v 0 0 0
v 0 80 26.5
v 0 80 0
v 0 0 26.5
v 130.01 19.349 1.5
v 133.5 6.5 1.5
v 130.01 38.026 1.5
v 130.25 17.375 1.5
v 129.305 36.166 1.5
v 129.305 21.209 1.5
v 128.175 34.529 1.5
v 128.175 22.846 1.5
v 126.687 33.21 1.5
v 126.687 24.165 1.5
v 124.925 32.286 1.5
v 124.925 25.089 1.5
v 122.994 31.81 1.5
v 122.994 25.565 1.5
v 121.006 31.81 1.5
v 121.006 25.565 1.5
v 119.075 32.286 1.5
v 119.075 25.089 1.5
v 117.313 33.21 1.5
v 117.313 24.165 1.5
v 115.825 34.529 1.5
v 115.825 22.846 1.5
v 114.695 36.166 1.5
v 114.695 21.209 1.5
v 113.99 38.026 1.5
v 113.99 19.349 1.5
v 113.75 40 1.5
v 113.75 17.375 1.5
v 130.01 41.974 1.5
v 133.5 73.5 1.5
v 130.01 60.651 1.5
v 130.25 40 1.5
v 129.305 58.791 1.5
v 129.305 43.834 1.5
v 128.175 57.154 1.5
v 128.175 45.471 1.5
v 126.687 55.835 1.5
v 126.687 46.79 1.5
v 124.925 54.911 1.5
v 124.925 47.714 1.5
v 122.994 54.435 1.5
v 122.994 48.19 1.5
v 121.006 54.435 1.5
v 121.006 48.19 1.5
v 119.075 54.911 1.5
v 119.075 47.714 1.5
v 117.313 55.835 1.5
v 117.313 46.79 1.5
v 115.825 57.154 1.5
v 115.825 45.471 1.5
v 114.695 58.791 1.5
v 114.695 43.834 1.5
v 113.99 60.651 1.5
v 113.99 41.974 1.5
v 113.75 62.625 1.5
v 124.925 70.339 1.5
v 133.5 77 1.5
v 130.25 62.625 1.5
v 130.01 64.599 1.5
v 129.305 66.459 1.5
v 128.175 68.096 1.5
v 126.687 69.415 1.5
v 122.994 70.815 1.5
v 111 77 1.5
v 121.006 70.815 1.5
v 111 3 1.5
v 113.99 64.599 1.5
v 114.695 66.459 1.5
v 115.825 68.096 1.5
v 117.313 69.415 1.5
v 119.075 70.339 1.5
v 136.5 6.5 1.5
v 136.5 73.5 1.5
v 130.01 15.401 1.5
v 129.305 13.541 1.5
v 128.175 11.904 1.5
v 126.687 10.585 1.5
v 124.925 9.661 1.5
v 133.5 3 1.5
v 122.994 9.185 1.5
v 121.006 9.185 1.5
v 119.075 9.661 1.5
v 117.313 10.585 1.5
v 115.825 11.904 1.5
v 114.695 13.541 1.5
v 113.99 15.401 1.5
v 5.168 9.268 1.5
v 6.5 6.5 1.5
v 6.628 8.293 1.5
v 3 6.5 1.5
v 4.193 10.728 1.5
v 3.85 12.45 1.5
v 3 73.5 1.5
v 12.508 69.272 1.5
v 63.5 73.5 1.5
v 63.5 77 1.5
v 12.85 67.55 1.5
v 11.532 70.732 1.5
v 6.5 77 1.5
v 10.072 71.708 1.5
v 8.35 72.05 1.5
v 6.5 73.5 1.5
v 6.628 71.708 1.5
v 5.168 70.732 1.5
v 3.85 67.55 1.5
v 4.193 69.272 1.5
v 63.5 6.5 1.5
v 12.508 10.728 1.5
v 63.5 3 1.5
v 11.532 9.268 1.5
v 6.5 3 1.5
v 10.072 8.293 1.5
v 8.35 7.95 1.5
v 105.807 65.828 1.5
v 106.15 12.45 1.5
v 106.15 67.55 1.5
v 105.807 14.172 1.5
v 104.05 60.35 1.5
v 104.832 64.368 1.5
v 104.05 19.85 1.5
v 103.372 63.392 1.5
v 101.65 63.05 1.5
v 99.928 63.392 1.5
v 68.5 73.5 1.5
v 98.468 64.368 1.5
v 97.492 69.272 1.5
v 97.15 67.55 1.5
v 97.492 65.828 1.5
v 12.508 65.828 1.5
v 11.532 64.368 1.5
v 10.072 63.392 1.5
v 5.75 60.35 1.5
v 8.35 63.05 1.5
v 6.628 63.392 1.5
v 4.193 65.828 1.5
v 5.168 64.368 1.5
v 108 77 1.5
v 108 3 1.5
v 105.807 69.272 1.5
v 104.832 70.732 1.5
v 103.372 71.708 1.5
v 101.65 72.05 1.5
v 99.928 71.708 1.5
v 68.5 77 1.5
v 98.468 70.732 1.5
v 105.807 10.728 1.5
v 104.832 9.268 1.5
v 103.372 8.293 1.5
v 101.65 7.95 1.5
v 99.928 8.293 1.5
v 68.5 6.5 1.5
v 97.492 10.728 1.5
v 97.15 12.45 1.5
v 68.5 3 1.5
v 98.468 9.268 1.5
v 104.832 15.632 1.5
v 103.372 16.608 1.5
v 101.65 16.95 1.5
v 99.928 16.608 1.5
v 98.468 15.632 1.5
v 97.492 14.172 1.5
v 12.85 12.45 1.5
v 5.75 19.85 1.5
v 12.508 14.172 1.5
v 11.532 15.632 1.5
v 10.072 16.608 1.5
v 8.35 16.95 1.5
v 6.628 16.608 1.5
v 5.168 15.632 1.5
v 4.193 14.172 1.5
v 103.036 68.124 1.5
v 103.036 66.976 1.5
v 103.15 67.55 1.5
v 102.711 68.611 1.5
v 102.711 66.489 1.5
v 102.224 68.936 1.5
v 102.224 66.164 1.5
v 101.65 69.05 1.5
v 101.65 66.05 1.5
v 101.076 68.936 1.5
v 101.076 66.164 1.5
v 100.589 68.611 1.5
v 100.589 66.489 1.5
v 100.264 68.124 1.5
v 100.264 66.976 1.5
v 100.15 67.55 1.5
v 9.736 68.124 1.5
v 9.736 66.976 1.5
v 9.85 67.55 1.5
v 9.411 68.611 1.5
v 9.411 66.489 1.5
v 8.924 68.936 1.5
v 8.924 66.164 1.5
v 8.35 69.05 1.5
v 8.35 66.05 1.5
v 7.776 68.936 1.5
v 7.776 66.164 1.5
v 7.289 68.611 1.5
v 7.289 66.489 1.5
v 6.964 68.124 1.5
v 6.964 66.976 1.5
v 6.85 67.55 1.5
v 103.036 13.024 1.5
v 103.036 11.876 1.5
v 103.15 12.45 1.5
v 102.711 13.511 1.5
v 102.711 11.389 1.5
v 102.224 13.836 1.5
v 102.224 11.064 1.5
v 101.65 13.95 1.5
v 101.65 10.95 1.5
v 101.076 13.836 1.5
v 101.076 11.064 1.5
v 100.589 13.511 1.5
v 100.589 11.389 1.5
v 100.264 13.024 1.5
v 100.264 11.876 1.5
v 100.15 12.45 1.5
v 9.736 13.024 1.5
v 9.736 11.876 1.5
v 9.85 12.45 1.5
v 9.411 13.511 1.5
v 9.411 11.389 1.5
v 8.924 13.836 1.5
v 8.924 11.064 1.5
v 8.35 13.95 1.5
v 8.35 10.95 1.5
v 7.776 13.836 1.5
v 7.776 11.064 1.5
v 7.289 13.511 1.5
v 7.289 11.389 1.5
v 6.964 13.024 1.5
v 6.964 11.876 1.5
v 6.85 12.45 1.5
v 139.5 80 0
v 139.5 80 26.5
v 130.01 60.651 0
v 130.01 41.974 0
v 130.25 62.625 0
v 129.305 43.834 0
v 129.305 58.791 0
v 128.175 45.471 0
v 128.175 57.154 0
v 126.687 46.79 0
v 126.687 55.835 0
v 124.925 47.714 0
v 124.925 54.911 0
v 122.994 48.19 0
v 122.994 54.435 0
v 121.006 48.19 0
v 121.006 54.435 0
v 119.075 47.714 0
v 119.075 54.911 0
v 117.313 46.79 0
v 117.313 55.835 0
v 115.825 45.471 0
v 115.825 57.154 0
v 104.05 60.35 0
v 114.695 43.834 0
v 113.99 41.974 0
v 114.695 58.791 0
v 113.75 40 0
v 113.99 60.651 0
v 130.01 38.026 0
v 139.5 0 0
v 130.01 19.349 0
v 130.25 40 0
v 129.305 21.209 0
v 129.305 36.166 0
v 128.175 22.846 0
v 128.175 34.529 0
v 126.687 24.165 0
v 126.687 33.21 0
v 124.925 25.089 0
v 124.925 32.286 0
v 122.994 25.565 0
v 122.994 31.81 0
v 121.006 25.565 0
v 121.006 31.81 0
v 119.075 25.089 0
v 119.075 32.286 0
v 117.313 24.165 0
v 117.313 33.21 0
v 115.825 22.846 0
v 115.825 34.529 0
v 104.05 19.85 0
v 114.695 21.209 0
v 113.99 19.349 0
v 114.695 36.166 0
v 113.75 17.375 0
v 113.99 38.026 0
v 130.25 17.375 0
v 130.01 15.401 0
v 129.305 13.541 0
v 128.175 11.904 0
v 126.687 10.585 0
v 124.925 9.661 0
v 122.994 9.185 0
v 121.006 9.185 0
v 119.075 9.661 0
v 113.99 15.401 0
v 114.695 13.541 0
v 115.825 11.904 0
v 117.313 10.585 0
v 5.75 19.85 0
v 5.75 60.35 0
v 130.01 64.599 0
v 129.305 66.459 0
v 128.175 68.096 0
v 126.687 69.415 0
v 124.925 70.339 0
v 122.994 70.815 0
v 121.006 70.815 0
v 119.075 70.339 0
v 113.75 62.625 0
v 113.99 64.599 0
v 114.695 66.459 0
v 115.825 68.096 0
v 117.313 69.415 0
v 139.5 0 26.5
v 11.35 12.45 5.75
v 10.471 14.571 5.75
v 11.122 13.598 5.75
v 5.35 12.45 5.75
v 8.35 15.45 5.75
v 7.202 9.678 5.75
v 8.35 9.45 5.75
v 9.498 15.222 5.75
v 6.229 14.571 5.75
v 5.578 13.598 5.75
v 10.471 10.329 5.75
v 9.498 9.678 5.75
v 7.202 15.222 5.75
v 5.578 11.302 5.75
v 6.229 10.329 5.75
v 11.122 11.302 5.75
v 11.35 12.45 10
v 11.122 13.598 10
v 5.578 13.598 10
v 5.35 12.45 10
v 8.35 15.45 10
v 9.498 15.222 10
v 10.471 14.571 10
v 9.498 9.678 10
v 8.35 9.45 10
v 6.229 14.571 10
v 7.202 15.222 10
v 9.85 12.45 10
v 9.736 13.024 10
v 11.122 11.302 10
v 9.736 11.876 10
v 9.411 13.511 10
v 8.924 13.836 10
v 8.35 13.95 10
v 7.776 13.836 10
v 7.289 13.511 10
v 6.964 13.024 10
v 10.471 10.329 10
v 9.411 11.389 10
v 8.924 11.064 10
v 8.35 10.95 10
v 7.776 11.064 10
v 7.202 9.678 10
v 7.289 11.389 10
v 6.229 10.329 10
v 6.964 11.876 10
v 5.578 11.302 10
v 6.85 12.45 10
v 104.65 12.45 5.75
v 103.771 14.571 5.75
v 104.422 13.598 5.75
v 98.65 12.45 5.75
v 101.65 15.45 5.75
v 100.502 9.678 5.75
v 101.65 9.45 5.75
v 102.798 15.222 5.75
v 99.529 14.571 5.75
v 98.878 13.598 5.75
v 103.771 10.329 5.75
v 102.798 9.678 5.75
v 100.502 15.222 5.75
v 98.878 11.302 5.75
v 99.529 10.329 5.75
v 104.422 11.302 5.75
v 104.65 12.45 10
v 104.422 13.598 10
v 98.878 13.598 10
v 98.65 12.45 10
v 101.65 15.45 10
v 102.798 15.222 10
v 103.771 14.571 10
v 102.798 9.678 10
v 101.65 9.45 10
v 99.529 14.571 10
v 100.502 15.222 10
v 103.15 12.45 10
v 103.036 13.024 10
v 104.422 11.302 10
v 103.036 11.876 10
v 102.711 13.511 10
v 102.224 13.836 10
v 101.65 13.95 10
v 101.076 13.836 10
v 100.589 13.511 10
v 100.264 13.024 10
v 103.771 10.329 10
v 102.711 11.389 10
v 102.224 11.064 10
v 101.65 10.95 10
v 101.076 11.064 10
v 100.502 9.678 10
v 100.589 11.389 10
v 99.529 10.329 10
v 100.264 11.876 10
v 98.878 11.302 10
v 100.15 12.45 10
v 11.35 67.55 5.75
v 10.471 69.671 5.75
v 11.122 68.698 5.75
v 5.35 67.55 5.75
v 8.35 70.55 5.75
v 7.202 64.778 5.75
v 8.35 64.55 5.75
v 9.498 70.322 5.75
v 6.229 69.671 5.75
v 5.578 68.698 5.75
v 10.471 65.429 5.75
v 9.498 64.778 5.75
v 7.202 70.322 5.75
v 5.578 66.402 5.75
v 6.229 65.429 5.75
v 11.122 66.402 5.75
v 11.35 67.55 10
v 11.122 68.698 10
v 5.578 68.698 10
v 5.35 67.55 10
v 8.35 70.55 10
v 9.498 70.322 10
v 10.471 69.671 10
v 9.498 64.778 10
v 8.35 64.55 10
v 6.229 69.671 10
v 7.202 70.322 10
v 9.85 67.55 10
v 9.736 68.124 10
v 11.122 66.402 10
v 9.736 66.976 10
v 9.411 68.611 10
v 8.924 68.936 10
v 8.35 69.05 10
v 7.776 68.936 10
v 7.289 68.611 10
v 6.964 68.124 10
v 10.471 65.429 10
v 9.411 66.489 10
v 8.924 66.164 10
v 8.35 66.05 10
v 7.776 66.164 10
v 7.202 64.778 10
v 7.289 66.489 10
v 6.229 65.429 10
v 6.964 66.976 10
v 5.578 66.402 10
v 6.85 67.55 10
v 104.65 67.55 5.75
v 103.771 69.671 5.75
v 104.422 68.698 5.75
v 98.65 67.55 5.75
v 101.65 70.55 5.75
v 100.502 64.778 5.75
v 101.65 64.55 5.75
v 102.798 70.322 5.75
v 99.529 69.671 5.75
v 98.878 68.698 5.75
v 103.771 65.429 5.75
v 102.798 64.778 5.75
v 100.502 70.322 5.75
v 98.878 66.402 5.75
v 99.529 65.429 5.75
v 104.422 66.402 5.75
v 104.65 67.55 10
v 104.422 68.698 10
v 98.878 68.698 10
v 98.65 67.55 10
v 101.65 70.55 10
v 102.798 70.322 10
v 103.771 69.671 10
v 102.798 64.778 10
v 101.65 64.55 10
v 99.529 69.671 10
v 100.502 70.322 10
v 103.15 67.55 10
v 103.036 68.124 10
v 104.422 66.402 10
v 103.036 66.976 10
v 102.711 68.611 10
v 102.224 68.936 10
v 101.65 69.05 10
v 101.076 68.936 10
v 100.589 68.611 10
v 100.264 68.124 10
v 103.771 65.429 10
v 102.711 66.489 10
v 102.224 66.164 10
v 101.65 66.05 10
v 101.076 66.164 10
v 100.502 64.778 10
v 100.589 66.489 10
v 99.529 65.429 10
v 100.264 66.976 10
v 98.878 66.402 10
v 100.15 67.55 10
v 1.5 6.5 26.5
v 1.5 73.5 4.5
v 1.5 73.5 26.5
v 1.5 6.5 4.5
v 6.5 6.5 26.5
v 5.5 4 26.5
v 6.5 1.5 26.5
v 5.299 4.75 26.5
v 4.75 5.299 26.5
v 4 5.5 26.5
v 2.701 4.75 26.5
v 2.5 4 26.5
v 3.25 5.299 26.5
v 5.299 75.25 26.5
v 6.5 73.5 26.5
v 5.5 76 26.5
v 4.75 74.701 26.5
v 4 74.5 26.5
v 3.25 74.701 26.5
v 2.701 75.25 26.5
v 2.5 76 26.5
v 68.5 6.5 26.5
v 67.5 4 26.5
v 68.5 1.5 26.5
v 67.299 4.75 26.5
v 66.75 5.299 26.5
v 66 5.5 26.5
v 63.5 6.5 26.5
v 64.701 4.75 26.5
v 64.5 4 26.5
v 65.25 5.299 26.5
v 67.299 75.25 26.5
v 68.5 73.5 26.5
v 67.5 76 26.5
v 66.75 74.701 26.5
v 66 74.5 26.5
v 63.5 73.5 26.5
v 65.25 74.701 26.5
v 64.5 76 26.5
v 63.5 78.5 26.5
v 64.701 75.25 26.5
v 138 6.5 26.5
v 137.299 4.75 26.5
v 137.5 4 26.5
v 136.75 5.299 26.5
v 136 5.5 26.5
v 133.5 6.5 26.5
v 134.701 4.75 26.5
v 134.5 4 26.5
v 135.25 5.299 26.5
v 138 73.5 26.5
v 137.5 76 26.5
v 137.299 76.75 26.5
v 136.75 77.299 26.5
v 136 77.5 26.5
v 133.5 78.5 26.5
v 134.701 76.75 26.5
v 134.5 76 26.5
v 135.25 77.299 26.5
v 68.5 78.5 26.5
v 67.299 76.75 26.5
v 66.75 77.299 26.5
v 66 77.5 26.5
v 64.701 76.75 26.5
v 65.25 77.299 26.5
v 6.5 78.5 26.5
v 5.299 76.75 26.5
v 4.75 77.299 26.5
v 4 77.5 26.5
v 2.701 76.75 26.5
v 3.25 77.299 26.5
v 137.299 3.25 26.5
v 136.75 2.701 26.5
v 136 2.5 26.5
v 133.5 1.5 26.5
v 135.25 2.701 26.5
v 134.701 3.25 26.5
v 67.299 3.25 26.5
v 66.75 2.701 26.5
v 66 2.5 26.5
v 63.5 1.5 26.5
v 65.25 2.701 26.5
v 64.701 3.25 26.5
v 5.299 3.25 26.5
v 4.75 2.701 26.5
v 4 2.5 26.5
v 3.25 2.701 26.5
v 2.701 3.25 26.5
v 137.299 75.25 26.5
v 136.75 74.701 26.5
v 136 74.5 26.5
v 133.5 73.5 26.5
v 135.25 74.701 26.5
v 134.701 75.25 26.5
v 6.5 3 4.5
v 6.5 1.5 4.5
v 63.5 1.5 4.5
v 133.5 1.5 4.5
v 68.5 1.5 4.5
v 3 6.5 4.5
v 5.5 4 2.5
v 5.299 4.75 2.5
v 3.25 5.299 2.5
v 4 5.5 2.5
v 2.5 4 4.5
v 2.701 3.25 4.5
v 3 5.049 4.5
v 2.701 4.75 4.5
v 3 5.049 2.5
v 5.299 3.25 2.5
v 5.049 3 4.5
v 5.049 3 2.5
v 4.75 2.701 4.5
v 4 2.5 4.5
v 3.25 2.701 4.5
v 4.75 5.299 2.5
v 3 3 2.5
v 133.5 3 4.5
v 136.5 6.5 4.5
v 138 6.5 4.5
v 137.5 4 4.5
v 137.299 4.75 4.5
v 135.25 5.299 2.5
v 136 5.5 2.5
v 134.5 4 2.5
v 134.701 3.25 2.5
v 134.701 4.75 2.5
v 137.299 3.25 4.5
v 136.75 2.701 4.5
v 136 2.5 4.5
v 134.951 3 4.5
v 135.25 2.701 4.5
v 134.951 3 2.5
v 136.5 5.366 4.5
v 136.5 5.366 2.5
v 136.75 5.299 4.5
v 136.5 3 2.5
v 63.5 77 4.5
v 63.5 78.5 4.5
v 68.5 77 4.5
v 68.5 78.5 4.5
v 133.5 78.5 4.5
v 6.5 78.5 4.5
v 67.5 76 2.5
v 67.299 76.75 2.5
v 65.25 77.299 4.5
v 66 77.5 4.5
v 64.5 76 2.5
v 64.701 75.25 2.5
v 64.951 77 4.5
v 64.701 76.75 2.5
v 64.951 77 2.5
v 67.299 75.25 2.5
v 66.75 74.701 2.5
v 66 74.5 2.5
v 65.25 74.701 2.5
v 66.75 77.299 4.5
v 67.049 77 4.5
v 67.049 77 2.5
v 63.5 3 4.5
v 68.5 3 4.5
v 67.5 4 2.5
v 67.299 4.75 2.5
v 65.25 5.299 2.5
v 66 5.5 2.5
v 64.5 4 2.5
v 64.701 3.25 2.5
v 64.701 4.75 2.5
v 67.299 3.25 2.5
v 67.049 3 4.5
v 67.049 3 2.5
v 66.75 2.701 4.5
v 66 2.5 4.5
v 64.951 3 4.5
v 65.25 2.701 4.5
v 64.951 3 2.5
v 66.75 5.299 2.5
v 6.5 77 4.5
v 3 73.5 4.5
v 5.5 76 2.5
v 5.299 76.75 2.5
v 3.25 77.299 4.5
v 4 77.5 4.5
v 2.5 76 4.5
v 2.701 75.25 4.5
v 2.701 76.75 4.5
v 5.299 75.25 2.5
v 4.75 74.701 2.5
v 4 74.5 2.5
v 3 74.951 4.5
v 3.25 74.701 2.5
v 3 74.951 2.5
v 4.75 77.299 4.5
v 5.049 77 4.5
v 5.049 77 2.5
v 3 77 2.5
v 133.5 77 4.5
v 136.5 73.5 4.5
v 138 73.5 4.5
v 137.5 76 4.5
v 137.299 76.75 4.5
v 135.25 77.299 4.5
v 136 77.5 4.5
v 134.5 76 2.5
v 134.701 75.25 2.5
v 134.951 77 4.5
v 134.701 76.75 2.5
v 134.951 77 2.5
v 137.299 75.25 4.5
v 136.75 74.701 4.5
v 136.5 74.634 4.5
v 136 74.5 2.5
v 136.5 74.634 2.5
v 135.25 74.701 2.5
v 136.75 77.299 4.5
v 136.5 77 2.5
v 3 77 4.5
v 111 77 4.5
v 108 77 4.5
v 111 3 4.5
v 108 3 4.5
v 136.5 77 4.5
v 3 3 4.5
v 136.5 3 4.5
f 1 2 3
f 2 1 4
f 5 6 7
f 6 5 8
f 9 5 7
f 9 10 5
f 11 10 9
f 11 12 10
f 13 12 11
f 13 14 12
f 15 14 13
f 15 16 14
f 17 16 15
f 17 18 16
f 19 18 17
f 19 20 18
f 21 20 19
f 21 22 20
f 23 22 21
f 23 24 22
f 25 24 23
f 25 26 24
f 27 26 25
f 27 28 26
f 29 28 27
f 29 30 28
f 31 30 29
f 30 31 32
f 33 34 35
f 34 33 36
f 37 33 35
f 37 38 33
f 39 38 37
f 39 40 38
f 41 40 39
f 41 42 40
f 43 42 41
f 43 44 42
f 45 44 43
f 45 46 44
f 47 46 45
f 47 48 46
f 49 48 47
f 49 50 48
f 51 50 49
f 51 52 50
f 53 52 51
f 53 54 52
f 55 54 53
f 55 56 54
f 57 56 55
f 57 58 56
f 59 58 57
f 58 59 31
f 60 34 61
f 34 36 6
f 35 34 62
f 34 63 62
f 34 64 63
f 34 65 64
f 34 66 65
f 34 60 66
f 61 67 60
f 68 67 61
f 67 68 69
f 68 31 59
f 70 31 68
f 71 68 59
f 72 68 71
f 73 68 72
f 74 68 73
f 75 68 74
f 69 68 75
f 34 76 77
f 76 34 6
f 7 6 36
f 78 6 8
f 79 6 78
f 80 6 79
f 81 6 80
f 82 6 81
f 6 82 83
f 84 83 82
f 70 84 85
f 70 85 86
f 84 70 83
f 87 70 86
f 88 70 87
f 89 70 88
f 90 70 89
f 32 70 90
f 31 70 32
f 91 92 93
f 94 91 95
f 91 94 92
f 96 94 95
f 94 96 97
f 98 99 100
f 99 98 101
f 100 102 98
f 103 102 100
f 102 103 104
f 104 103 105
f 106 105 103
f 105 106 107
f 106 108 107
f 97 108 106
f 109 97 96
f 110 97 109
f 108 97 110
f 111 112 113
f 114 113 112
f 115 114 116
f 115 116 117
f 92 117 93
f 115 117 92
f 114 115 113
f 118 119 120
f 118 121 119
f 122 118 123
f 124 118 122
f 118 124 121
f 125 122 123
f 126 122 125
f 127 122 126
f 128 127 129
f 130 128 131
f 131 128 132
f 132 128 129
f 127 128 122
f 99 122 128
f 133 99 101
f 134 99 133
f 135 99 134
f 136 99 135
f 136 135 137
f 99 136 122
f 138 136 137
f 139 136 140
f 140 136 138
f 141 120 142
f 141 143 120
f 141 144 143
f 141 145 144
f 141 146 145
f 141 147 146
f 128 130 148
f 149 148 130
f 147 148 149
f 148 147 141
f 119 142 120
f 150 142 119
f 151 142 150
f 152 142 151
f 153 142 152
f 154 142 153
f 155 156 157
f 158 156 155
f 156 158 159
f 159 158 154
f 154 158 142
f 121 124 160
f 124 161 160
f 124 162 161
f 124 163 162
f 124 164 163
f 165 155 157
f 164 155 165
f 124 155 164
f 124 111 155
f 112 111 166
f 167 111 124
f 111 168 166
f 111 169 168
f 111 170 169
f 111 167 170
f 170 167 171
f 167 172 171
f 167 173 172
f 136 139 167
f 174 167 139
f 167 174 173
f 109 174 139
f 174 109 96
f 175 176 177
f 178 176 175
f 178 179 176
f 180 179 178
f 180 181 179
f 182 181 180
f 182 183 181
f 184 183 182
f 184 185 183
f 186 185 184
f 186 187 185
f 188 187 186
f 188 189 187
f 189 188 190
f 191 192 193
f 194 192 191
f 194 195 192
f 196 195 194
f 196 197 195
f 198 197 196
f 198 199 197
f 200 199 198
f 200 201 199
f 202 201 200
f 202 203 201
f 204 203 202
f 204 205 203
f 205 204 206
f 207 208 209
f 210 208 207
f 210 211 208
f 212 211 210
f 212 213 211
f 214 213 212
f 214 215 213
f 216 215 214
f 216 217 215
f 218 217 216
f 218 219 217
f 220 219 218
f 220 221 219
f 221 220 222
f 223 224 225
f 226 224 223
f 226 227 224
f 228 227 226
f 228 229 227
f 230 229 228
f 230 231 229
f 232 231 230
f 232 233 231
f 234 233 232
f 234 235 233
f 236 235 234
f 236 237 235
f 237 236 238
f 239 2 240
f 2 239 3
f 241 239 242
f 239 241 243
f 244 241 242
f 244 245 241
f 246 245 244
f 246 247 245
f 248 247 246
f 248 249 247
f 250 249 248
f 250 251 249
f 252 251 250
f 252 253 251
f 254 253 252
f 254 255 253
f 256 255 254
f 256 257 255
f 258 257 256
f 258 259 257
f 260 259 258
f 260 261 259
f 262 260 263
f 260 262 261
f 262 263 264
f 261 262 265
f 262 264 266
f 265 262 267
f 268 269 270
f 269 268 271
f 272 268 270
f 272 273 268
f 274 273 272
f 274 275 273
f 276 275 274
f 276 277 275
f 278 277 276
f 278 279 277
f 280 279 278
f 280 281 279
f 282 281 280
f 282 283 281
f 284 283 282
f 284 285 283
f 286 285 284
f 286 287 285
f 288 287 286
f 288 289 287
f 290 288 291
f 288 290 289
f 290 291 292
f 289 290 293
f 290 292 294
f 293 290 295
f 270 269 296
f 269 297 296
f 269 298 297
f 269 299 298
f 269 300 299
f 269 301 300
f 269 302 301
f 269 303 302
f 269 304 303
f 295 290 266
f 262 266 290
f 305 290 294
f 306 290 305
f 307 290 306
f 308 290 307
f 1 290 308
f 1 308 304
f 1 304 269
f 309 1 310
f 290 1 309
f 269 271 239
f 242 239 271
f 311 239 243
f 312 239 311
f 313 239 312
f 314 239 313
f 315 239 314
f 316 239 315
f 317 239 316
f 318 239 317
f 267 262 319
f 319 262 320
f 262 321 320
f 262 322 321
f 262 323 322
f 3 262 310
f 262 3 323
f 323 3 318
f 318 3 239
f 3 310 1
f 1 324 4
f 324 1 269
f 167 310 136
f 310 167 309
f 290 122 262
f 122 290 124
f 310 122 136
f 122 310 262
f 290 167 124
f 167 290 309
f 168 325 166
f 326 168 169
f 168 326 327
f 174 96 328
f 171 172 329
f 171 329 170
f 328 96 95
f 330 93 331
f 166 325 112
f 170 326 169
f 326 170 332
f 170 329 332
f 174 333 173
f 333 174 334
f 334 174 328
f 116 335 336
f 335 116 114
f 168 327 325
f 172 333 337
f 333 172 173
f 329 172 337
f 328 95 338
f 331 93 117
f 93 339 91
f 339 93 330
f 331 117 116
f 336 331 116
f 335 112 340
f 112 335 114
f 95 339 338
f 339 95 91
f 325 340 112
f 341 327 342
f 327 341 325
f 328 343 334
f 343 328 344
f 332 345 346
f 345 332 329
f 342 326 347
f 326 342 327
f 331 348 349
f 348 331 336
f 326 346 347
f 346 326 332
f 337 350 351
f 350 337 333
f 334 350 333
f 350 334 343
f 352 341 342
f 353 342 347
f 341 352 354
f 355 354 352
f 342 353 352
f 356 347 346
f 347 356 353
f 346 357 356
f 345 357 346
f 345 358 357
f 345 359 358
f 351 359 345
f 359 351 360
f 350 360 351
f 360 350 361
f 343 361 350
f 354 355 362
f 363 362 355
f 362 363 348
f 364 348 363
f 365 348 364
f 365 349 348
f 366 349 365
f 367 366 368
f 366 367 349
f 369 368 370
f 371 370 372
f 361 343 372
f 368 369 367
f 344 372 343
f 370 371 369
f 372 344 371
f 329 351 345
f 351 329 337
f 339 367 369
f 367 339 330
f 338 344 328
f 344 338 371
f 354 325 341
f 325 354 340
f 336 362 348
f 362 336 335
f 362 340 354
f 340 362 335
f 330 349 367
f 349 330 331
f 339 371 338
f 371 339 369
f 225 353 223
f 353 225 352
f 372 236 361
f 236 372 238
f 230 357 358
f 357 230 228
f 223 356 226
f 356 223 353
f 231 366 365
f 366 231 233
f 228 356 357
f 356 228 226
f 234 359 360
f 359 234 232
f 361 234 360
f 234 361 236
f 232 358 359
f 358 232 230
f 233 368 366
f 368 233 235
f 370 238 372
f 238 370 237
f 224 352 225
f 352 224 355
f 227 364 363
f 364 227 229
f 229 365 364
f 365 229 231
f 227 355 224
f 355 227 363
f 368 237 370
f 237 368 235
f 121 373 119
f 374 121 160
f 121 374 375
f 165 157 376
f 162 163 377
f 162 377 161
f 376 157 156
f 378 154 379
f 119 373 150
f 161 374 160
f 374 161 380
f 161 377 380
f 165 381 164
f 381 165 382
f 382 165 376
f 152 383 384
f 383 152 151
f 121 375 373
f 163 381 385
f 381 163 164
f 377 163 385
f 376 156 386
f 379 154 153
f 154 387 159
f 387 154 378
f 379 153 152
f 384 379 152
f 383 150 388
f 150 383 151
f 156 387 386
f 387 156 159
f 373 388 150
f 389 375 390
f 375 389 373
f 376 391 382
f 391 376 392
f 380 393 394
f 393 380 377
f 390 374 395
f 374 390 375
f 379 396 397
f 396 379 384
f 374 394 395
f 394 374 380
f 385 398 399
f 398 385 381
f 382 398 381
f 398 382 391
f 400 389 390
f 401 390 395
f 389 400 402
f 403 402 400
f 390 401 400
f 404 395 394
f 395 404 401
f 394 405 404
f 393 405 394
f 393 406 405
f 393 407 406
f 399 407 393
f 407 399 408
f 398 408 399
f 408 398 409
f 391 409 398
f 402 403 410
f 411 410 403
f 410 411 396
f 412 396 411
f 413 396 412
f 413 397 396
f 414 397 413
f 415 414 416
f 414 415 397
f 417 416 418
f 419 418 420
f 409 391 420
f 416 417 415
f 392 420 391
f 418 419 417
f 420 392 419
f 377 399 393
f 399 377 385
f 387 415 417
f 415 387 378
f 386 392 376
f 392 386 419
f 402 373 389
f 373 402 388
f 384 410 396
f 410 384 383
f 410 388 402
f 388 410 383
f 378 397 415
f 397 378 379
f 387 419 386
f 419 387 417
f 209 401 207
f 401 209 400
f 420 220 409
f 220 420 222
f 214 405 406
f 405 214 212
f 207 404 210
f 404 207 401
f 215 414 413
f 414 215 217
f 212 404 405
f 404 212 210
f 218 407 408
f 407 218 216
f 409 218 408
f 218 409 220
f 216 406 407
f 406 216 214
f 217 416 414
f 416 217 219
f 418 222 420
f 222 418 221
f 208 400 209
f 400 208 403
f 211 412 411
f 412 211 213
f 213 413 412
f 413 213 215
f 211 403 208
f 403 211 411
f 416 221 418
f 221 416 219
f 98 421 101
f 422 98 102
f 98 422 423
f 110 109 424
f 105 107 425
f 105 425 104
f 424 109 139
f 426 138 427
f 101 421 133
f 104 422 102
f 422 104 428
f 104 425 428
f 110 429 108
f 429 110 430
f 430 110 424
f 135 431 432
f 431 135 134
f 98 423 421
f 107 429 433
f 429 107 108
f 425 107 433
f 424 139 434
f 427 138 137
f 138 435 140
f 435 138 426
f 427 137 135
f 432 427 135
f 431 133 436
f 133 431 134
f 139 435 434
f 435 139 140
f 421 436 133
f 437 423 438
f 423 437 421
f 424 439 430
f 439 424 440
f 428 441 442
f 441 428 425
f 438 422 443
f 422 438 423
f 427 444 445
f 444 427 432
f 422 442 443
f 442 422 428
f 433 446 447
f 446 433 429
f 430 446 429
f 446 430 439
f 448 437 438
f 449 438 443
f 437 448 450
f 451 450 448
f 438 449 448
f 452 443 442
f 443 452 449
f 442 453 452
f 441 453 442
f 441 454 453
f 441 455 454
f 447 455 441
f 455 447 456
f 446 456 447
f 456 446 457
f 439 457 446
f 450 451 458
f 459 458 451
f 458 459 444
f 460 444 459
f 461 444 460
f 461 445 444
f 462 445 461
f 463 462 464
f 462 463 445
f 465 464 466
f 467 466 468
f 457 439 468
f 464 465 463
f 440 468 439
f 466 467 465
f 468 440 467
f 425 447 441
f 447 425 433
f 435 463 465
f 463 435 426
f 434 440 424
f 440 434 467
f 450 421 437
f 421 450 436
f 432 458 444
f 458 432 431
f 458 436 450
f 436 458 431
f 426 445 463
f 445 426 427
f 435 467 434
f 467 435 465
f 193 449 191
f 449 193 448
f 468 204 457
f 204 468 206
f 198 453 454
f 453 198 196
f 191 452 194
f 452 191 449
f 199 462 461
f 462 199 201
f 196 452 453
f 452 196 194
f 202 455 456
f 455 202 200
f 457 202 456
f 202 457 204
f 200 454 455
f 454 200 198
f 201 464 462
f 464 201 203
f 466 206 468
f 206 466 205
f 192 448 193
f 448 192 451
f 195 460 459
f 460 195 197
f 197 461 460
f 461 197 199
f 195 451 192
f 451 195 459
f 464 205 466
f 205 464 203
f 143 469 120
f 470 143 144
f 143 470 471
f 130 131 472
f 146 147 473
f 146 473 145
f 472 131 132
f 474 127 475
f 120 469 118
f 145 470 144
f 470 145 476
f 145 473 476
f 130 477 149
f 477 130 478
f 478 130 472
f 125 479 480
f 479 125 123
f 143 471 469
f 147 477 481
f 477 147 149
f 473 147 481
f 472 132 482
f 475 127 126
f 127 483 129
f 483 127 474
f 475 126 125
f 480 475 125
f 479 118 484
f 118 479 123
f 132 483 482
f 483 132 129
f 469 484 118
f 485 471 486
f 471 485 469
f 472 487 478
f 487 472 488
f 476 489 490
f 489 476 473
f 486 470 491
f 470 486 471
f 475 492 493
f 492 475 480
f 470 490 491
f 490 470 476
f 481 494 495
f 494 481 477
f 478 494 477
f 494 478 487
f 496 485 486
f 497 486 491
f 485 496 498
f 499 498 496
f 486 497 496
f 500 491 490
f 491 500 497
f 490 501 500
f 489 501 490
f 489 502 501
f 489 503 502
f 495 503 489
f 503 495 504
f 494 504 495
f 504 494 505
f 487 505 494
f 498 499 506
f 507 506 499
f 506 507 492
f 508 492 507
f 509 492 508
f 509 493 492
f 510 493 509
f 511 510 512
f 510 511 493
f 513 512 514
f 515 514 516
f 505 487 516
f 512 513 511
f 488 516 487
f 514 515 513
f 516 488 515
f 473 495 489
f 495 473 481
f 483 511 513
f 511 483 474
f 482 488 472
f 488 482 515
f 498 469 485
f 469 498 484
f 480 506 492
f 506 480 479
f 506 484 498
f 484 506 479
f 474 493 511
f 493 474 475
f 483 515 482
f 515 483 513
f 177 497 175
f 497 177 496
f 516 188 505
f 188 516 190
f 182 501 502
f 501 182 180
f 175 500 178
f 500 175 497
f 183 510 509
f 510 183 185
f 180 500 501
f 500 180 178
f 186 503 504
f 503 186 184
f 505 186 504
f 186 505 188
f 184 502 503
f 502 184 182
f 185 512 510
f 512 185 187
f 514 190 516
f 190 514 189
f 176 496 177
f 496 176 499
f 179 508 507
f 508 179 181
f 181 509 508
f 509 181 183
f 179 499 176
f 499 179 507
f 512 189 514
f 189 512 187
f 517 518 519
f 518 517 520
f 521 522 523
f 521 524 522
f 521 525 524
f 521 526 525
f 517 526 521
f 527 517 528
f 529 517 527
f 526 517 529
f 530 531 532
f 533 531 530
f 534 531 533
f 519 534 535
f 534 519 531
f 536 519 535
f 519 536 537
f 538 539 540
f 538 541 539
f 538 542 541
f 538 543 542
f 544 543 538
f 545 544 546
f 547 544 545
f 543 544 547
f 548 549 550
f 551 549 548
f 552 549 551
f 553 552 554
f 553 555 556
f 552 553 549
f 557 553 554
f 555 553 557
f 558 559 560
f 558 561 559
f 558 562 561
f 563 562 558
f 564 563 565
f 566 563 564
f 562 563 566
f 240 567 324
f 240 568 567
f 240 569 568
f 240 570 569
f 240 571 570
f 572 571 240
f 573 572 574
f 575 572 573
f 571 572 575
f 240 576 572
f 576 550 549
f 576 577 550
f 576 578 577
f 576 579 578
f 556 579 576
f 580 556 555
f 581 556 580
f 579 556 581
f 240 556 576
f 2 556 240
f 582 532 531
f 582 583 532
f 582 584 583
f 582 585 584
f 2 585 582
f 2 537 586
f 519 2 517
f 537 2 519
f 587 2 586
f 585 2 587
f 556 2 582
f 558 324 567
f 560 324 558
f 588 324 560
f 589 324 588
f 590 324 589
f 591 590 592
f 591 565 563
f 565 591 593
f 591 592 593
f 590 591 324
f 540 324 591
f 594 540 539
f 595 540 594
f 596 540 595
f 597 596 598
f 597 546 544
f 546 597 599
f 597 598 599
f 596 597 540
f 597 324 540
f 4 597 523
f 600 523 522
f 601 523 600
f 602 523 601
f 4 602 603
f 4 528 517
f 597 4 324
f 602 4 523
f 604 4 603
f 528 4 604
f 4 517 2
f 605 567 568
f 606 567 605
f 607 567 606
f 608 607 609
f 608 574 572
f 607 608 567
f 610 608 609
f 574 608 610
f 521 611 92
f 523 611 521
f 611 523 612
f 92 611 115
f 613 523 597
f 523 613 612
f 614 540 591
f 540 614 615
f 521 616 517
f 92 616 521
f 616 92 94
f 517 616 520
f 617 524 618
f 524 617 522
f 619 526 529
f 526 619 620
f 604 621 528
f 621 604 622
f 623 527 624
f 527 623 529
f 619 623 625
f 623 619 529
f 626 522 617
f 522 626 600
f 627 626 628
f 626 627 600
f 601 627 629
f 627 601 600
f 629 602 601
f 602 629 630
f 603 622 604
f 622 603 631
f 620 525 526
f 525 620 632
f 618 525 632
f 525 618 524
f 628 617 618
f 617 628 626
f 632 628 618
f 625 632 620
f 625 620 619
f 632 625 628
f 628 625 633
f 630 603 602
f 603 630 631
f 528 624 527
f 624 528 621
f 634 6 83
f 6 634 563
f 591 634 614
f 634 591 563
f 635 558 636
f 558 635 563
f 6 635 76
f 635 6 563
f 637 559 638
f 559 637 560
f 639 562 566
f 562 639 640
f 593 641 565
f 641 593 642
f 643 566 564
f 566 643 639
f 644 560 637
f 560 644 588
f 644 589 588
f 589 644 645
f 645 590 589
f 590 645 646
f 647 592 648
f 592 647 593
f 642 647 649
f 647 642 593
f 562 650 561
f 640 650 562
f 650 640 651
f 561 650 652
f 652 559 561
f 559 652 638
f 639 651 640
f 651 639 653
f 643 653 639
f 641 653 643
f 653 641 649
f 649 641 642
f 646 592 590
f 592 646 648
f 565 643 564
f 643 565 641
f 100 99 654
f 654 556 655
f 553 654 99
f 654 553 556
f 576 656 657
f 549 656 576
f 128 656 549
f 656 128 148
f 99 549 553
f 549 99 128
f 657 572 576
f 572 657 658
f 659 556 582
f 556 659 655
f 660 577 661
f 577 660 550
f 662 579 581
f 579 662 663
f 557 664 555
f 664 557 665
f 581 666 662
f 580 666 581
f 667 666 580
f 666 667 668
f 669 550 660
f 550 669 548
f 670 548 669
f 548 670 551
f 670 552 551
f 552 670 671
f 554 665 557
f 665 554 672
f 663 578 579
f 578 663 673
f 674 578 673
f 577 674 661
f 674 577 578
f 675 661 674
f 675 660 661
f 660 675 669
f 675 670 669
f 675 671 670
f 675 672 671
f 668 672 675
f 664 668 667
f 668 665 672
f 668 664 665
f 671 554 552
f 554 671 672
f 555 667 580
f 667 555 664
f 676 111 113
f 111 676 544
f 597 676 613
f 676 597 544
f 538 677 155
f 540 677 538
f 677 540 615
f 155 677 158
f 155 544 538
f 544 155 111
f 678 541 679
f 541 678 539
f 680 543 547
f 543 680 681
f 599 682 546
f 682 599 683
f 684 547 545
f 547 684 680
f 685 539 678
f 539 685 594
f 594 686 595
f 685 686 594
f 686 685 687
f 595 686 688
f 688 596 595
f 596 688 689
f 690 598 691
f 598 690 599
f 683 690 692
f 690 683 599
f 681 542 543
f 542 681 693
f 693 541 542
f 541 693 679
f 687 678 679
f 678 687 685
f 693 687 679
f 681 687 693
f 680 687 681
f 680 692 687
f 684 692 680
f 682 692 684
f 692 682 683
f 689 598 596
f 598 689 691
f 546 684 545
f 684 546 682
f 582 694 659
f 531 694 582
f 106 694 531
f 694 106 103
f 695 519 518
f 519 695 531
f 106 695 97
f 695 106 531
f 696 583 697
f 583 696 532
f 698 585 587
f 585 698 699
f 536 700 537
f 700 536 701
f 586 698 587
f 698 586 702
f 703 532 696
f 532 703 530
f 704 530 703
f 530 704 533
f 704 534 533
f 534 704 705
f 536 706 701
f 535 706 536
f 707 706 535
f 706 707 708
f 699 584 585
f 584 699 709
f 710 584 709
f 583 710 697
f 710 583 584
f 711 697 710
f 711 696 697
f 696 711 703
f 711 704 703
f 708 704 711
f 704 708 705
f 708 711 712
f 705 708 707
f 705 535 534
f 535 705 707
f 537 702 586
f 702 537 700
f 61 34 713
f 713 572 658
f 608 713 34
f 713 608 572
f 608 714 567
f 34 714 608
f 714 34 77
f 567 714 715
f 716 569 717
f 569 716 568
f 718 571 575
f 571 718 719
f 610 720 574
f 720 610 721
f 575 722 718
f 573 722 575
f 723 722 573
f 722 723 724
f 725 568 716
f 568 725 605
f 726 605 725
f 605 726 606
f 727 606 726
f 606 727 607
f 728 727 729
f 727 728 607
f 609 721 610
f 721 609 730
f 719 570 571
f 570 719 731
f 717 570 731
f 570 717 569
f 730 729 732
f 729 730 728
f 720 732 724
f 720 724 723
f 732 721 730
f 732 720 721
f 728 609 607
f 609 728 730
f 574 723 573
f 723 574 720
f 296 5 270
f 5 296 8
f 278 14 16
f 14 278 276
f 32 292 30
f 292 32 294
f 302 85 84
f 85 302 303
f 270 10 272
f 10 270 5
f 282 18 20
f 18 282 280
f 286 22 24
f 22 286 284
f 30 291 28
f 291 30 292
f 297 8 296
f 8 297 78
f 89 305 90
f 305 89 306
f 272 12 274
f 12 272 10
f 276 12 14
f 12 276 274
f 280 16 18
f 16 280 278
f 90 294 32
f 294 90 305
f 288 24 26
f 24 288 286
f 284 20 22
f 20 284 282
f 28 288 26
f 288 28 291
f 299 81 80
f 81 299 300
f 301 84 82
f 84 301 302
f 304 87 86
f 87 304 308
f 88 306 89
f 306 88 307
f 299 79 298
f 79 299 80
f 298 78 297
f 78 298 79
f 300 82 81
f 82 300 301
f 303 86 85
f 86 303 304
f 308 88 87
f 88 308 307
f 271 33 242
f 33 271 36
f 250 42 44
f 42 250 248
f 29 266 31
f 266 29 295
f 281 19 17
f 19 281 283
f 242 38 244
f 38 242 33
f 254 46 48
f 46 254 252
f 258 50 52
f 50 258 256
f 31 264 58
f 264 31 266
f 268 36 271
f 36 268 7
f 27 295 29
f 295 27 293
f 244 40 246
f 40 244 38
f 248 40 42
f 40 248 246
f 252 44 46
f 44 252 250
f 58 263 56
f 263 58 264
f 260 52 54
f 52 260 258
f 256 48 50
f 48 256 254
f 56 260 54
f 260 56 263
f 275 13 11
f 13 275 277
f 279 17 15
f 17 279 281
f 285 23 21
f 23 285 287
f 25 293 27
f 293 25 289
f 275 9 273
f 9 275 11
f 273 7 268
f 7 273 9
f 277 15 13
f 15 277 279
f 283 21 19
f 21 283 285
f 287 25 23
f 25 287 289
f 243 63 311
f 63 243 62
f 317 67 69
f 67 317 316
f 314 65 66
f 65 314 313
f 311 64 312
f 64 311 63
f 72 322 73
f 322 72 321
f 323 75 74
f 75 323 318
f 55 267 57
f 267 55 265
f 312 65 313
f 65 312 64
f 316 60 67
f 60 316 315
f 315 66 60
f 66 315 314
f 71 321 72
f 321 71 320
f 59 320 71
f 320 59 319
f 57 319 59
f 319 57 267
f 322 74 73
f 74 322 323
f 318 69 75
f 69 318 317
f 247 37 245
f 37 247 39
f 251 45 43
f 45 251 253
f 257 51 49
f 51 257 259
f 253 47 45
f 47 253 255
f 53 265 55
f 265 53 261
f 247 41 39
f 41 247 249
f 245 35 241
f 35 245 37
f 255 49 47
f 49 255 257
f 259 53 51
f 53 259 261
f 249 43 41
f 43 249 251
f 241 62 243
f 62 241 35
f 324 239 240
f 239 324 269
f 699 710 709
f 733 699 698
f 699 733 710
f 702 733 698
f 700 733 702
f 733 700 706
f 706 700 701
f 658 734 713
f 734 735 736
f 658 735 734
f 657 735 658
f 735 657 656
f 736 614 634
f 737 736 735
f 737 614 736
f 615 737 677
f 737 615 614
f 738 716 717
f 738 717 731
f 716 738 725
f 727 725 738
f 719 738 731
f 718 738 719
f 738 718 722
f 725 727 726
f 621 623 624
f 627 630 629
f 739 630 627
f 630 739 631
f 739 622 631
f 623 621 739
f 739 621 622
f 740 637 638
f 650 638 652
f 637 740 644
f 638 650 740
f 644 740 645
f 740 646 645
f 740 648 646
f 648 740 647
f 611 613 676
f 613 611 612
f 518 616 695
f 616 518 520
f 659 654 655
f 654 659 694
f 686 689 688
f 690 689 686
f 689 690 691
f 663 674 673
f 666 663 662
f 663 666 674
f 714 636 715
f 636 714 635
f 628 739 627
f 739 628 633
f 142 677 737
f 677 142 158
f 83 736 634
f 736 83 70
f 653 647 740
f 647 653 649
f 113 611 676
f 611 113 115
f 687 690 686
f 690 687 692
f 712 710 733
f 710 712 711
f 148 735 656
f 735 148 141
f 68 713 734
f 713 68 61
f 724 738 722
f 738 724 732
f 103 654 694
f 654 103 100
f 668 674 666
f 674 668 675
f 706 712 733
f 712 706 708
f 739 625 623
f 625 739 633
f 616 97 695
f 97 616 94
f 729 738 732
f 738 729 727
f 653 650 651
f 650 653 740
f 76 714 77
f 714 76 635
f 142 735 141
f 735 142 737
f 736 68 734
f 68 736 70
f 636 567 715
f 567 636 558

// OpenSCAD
// file: ../parts/textLcdBezels.scad
lcd2x16_screenX=71.5;
lcd2x16_screenY=24.5;
lcd2x16_screenZ=8;

lcd2x16_circuitX=80.5;
lcd2x16_circuitY=36.5;
lcd2x16_circuitZ=1.7;


lcd2x16_screenDecalX=4.5;
lcd2x16_screenDecalY=5.5;

lcdHolesDistFromEdge=2;
lcdHolesRadius=3;

bezelX=90;
bezelY=40;
bezelWallsThickness=1;


bezel4x20X=110;
bezel4x20Y=70;
bezel4x20WallsThickness=1;
lcd4x20HolesDistFromEdge=1.1;
lcd4x20HolesRadius=3.2/2;

lcd4x20_screenX=98.3;
lcd4x20_screenY=40.5;
lcd4x20_screenZ=8.5;

lcd4x20_circuitX=98.5;
lcd4x20_circuitY=60.3;
lcd4x20_circuitZ=1.7;


lcd4x20_screenDecalX=0;
lcd4x20_screenDecalY=10;



module screwSupport(rp1,rp2,h1,h2,holeR)
{
    
    difference()
    {
    union()
    {
    cylinder(r1=rp1,r2=rp2,h=h1,$fn=16);
    cylinder(r=rp2,h=h2,$fn=16);
    }
    translate([0,0,-h2/2])
    cylinder(r=holeR,h=h2*2,$fn=16);
    }
    
}


module bezel2x16(bx,by,bThick,lcdHolesR)
{
    pcbXDecal=(bx-lcd2x16_circuitX)/2;
    pcbYDecal=(by-lcd2x16_circuitY)/2;
    
    lcdXDecal=pcbXDecal+lcd2x16_screenDecalX;
    lcdYDecal=pcbYDecal+lcd2x16_screenDecalY;
    
    /*lcdXDecal=(bx-lcd2x16_screenX)/2;
    lcdYDecal=(by-lcd2x16_screenY)/2;*/
 
    difference()
    {
        cube([bx,by,bThick]);
        translate([lcdXDecal,lcdYDecal,-bThick])
            cube([lcd2x16_screenX,lcd2x16_screenY,lcd2x16_screenZ]);
    }
    
    /*color("green")
    {
        translate([pcbXDecal,pcbYDecal,+bThick])
            cube([lcd2x16_circuitX,lcd2x16_circuitY,lcd2x16_circuitZ]);
    }*/
    
    rp1=(lcdHolesR+bThick)*0.95;
    rp2=(lcdHolesR+bThick)*0.9;
    h1=lcd2x16_screenZ/2;
    h2=lcd2x16_screenZ;
    holeR=lcdHolesR;
    translate([pcbXDecal,pcbYDecal,+bThick])
    {
        translate([lcdHolesR+lcdHolesDistFromEdge,lcdHolesR+lcdHolesDistFromEdge,0])
            //cylinder(r=lcdHolesR*bThick,h=lcd2x16_screenZ-bThick,$fn=16);
        screwSupport(rp1,rp2,h1,h2,holeR);
        
        translate([lcd2x16_circuitX-lcdHolesR-lcdHolesDistFromEdge,lcdHolesR+lcdHolesDistFromEdge,0])
            //cylinder(r=lcdHolesR*bThick,h=lcd2x16_screenZ-bThick,$fn=16);
        screwSupport(rp1,rp2,h1,h2,holeR);
        
        translate([lcdHolesR+lcdHolesDistFromEdge,lcd2x16_circuitY-lcdHolesR-lcdHolesDistFromEdge,0])
            //cylinder(r=lcdHolesR*bThick,h=lcd2x16_screenZ-bThick,$fn=16);
        screwSupport(rp1,rp2,h1,h2,holeR);
        
        translate([lcd2x16_circuitX-lcdHolesR-lcdHolesDistFromEdge,lcd2x16_circuitY-lcdHolesR-lcdHolesDistFromEdge,0])
            //cylinder(r=lcdHolesR*bThick,h=lcd2x16_screenZ-bThick,$fn=16);
        screwSupport(rp1,rp2,h1,h2,holeR);
    }
}


module bezel4x20(bx,by,bThick,lcdHolesR)
{
    pcbXDecal=(bx-lcd4x20_circuitX)/2;
    pcbYDecal=(by-lcd4x20_circuitY)/2;
    
    lcdXDecal=pcbXDecal+lcd4x20_screenDecalX;
    lcdYDecal=pcbYDecal+lcd4x20_screenDecalY;
    
    /*lcdXDecal=(bx-lcd2x16_screenX)/2;
    lcdYDecal=(by-lcd2x16_screenY)/2;*/
 
    difference()
    {
        cube([bx,by,bThick]);
        translate([lcdXDecal,lcdYDecal,-bThick])
            cube([lcd4x20_screenX,lcd4x20_screenY,lcd4x20_screenZ]);
    }
    
    /*color("green")
    {
        translate([pcbXDecal,pcbYDecal,+bThick])
            cube([lcd2x16_circuitX,lcd2x16_circuitY,lcd2x16_circuitZ]);
    }*/
    
    rp1=(lcdHolesR+bThick)*1.5;
    rp2=(lcdHolesR+bThick)*1;
    h1=lcd4x20_screenZ/2;
    h2=lcd4x20_screenZ;
    holeR=lcdHolesR;
    translate([pcbXDecal,pcbYDecal,+bThick])
    {
        translate([lcdHolesR+lcd4x20HolesDistFromEdge,lcdHolesR+lcd4x20HolesDistFromEdge,0])
            //cylinder(r=lcdHolesR*bThick,h=lcd2x16_screenZ-bThick,$fn=16);
        screwSupport(rp1,rp2,h1,h2,holeR);
        
        translate([lcd4x20_circuitX-lcdHolesR-lcd4x20HolesDistFromEdge,lcdHolesR+lcd4x20HolesDistFromEdge,0])
            //cylinder(r=lcdHolesR*bThick,h=lcd2x16_screenZ-bThick,$fn=16);
        screwSupport(rp1,rp2,h1,h2,holeR);
        
        translate([lcdHolesR+lcd4x20HolesDistFromEdge,lcd4x20_circuitY-lcdHolesR-lcd4x20HolesDistFromEdge,0])
            //cylinder(r=lcdHolesR*bThick,h=lcd2x16_screenZ-bThick,$fn=16);
        screwSupport(rp1,rp2,h1,h2,holeR);
        
        translate([lcd4x20_circuitX-lcdHolesR-lcd4x20HolesDistFromEdge,lcd4x20_circuitY-lcdHolesR-lcd4x20HolesDistFromEdge,0])
            //cylinder(r=lcdHolesR*bThick,h=lcd2x16_screenZ-bThick,$fn=16);
        screwSupport(rp1,rp2,h1,h2,holeR);
    }
}




//bezel4x20(bezel4x20X,bezel4x20Y,bezel4x20WallsThickness,3/2);
// main file
include<../parts/textLcdBezels.scad>


//bezel4x20X=110;
bezel4x20Y=80;

boxWallsThickness=1.5;
buttonsAreaX=30;

buttonsHoleRadius=16.5/2;
beamsThickness=3;

boxPart1Z=25;
screwHoles1Radius=3/2;
pillarsWidth1=5;

module fixationPillar(pillarWidth=pillarsWidth1,pillarHeight=boxPart1Z,pillarScrewRadius=screwHoles1Radius)
{
    difference()
    {
    cube([pillarWidth,pillarWidth,pillarHeight]);
        translate([pillarWidth/2,pillarWidth/2,1])
        cylinder(r=pillarScrewRadius,h=pillarHeight,$fn=12);
    } 
}

nbButtons=3;
buttonDecalX=(buttonsAreaX-beamsThickness*2-1)/2;
buttonDecalY=(bezel4x20Y-beamsThickness*2-nbButtons*buttonsHoleRadius*2)/(nbButtons+1);
echo (buttonDecalY);
bezel4x20(bezel4x20X,bezel4x20Y,boxWallsThickness,3/2);
translate([bezel4x20X-0.5,0,0])
{
    difference()
    {
        cube([buttonsAreaX,bezel4x20Y,boxWallsThickness]);
        for(i = [1 : 1 : nbButtons])
        {
            translate([buttonDecalX+1,beamsThickness+buttonDecalY*i+buttonsHoleRadius+buttonsHoleRadius*2*(i-1),-boxWallsThickness/2])
                cylinder(r=buttonsHoleRadius,h=boxWallsThickness*2);
        }
        
        /*translate([buttonDecalX+1,27,-boxWallsThickness/2])
            cylinder(r=buttonsHoleRadius,h=boxWallsThickness*2);
        translate([buttonDecalX+1,55,-boxWallsThickness/2])
            cylinder(r=buttonsHoleRadius,h=boxWallsThickness*2);*/
        
    }
}

//beams
translate([0,0,boxWallsThickness])
    cube([bezel4x20X+buttonsAreaX-0.5,beamsThickness,beamsThickness]);
translate([0,bezel4x20Y-beamsThickness,boxWallsThickness])
    cube([bezel4x20X+buttonsAreaX-0.5,beamsThickness,beamsThickness]);

translate([0,0,boxWallsThickness])
    cube([beamsThickness,bezel4x20Y,beamsThickness]);
translate([bezel4x20X+buttonsAreaX-beamsThickness-0.5,0,boxWallsThickness])
    cube([beamsThickness,bezel4x20Y,beamsThickness]);

translate([bezel4x20X-beamsThickness+1,0,boxWallsThickness])
    cube([beamsThickness,bezel4x20Y,beamsThickness]);

//walls
translate([0,0,boxWallsThickness])
    cube([bezel4x20X+buttonsAreaX-0.5,boxWallsThickness,boxPart1Z]);
translate([0,bezel4x20Y-boxWallsThickness,boxWallsThickness])
    cube([bezel4x20X+buttonsAreaX-0.5,boxWallsThickness,boxPart1Z]);
translate([0,0,boxWallsThickness])
    cube([boxWallsThickness,bezel4x20Y,boxPart1Z]);
translate([bezel4x20X+buttonsAreaX-boxWallsThickness-0.5,0,boxWallsThickness])
    cube([boxWallsThickness,bezel4x20Y,boxPart1Z]);

//pillars
translate([boxWallsThickness,boxWallsThickness,boxWallsThickness])    
    fixationPillar();
translate([bezel4x20X+buttonsAreaX-pillarsWidth1-boxWallsThickness,boxWallsThickness,boxWallsThickness])    
    fixationPillar();


translate([(bezel4x20X+buttonsAreaX)/2-pillarsWidth1-boxWallsThickness,bezel4x20Y-pillarsWidth1-boxWallsThickness,boxWallsThickness])    
    fixationPillar();
translate([(bezel4x20X+buttonsAreaX)/2-pillarsWidth1-boxWallsThickness,boxWallsThickness,boxWallsThickness])    
    fixationPillar();

    
translate([boxWallsThickness,bezel4x20Y-pillarsWidth1-boxWallsThickness,boxWallsThickness])    
    fixationPillar();
translate([bezel4x20X+buttonsAreaX-pillarsWidth1-boxWallsThickness,bezel4x20Y-pillarsWidth1-boxWallsThickness,boxWallsThickness])    
    fixationPillar();
